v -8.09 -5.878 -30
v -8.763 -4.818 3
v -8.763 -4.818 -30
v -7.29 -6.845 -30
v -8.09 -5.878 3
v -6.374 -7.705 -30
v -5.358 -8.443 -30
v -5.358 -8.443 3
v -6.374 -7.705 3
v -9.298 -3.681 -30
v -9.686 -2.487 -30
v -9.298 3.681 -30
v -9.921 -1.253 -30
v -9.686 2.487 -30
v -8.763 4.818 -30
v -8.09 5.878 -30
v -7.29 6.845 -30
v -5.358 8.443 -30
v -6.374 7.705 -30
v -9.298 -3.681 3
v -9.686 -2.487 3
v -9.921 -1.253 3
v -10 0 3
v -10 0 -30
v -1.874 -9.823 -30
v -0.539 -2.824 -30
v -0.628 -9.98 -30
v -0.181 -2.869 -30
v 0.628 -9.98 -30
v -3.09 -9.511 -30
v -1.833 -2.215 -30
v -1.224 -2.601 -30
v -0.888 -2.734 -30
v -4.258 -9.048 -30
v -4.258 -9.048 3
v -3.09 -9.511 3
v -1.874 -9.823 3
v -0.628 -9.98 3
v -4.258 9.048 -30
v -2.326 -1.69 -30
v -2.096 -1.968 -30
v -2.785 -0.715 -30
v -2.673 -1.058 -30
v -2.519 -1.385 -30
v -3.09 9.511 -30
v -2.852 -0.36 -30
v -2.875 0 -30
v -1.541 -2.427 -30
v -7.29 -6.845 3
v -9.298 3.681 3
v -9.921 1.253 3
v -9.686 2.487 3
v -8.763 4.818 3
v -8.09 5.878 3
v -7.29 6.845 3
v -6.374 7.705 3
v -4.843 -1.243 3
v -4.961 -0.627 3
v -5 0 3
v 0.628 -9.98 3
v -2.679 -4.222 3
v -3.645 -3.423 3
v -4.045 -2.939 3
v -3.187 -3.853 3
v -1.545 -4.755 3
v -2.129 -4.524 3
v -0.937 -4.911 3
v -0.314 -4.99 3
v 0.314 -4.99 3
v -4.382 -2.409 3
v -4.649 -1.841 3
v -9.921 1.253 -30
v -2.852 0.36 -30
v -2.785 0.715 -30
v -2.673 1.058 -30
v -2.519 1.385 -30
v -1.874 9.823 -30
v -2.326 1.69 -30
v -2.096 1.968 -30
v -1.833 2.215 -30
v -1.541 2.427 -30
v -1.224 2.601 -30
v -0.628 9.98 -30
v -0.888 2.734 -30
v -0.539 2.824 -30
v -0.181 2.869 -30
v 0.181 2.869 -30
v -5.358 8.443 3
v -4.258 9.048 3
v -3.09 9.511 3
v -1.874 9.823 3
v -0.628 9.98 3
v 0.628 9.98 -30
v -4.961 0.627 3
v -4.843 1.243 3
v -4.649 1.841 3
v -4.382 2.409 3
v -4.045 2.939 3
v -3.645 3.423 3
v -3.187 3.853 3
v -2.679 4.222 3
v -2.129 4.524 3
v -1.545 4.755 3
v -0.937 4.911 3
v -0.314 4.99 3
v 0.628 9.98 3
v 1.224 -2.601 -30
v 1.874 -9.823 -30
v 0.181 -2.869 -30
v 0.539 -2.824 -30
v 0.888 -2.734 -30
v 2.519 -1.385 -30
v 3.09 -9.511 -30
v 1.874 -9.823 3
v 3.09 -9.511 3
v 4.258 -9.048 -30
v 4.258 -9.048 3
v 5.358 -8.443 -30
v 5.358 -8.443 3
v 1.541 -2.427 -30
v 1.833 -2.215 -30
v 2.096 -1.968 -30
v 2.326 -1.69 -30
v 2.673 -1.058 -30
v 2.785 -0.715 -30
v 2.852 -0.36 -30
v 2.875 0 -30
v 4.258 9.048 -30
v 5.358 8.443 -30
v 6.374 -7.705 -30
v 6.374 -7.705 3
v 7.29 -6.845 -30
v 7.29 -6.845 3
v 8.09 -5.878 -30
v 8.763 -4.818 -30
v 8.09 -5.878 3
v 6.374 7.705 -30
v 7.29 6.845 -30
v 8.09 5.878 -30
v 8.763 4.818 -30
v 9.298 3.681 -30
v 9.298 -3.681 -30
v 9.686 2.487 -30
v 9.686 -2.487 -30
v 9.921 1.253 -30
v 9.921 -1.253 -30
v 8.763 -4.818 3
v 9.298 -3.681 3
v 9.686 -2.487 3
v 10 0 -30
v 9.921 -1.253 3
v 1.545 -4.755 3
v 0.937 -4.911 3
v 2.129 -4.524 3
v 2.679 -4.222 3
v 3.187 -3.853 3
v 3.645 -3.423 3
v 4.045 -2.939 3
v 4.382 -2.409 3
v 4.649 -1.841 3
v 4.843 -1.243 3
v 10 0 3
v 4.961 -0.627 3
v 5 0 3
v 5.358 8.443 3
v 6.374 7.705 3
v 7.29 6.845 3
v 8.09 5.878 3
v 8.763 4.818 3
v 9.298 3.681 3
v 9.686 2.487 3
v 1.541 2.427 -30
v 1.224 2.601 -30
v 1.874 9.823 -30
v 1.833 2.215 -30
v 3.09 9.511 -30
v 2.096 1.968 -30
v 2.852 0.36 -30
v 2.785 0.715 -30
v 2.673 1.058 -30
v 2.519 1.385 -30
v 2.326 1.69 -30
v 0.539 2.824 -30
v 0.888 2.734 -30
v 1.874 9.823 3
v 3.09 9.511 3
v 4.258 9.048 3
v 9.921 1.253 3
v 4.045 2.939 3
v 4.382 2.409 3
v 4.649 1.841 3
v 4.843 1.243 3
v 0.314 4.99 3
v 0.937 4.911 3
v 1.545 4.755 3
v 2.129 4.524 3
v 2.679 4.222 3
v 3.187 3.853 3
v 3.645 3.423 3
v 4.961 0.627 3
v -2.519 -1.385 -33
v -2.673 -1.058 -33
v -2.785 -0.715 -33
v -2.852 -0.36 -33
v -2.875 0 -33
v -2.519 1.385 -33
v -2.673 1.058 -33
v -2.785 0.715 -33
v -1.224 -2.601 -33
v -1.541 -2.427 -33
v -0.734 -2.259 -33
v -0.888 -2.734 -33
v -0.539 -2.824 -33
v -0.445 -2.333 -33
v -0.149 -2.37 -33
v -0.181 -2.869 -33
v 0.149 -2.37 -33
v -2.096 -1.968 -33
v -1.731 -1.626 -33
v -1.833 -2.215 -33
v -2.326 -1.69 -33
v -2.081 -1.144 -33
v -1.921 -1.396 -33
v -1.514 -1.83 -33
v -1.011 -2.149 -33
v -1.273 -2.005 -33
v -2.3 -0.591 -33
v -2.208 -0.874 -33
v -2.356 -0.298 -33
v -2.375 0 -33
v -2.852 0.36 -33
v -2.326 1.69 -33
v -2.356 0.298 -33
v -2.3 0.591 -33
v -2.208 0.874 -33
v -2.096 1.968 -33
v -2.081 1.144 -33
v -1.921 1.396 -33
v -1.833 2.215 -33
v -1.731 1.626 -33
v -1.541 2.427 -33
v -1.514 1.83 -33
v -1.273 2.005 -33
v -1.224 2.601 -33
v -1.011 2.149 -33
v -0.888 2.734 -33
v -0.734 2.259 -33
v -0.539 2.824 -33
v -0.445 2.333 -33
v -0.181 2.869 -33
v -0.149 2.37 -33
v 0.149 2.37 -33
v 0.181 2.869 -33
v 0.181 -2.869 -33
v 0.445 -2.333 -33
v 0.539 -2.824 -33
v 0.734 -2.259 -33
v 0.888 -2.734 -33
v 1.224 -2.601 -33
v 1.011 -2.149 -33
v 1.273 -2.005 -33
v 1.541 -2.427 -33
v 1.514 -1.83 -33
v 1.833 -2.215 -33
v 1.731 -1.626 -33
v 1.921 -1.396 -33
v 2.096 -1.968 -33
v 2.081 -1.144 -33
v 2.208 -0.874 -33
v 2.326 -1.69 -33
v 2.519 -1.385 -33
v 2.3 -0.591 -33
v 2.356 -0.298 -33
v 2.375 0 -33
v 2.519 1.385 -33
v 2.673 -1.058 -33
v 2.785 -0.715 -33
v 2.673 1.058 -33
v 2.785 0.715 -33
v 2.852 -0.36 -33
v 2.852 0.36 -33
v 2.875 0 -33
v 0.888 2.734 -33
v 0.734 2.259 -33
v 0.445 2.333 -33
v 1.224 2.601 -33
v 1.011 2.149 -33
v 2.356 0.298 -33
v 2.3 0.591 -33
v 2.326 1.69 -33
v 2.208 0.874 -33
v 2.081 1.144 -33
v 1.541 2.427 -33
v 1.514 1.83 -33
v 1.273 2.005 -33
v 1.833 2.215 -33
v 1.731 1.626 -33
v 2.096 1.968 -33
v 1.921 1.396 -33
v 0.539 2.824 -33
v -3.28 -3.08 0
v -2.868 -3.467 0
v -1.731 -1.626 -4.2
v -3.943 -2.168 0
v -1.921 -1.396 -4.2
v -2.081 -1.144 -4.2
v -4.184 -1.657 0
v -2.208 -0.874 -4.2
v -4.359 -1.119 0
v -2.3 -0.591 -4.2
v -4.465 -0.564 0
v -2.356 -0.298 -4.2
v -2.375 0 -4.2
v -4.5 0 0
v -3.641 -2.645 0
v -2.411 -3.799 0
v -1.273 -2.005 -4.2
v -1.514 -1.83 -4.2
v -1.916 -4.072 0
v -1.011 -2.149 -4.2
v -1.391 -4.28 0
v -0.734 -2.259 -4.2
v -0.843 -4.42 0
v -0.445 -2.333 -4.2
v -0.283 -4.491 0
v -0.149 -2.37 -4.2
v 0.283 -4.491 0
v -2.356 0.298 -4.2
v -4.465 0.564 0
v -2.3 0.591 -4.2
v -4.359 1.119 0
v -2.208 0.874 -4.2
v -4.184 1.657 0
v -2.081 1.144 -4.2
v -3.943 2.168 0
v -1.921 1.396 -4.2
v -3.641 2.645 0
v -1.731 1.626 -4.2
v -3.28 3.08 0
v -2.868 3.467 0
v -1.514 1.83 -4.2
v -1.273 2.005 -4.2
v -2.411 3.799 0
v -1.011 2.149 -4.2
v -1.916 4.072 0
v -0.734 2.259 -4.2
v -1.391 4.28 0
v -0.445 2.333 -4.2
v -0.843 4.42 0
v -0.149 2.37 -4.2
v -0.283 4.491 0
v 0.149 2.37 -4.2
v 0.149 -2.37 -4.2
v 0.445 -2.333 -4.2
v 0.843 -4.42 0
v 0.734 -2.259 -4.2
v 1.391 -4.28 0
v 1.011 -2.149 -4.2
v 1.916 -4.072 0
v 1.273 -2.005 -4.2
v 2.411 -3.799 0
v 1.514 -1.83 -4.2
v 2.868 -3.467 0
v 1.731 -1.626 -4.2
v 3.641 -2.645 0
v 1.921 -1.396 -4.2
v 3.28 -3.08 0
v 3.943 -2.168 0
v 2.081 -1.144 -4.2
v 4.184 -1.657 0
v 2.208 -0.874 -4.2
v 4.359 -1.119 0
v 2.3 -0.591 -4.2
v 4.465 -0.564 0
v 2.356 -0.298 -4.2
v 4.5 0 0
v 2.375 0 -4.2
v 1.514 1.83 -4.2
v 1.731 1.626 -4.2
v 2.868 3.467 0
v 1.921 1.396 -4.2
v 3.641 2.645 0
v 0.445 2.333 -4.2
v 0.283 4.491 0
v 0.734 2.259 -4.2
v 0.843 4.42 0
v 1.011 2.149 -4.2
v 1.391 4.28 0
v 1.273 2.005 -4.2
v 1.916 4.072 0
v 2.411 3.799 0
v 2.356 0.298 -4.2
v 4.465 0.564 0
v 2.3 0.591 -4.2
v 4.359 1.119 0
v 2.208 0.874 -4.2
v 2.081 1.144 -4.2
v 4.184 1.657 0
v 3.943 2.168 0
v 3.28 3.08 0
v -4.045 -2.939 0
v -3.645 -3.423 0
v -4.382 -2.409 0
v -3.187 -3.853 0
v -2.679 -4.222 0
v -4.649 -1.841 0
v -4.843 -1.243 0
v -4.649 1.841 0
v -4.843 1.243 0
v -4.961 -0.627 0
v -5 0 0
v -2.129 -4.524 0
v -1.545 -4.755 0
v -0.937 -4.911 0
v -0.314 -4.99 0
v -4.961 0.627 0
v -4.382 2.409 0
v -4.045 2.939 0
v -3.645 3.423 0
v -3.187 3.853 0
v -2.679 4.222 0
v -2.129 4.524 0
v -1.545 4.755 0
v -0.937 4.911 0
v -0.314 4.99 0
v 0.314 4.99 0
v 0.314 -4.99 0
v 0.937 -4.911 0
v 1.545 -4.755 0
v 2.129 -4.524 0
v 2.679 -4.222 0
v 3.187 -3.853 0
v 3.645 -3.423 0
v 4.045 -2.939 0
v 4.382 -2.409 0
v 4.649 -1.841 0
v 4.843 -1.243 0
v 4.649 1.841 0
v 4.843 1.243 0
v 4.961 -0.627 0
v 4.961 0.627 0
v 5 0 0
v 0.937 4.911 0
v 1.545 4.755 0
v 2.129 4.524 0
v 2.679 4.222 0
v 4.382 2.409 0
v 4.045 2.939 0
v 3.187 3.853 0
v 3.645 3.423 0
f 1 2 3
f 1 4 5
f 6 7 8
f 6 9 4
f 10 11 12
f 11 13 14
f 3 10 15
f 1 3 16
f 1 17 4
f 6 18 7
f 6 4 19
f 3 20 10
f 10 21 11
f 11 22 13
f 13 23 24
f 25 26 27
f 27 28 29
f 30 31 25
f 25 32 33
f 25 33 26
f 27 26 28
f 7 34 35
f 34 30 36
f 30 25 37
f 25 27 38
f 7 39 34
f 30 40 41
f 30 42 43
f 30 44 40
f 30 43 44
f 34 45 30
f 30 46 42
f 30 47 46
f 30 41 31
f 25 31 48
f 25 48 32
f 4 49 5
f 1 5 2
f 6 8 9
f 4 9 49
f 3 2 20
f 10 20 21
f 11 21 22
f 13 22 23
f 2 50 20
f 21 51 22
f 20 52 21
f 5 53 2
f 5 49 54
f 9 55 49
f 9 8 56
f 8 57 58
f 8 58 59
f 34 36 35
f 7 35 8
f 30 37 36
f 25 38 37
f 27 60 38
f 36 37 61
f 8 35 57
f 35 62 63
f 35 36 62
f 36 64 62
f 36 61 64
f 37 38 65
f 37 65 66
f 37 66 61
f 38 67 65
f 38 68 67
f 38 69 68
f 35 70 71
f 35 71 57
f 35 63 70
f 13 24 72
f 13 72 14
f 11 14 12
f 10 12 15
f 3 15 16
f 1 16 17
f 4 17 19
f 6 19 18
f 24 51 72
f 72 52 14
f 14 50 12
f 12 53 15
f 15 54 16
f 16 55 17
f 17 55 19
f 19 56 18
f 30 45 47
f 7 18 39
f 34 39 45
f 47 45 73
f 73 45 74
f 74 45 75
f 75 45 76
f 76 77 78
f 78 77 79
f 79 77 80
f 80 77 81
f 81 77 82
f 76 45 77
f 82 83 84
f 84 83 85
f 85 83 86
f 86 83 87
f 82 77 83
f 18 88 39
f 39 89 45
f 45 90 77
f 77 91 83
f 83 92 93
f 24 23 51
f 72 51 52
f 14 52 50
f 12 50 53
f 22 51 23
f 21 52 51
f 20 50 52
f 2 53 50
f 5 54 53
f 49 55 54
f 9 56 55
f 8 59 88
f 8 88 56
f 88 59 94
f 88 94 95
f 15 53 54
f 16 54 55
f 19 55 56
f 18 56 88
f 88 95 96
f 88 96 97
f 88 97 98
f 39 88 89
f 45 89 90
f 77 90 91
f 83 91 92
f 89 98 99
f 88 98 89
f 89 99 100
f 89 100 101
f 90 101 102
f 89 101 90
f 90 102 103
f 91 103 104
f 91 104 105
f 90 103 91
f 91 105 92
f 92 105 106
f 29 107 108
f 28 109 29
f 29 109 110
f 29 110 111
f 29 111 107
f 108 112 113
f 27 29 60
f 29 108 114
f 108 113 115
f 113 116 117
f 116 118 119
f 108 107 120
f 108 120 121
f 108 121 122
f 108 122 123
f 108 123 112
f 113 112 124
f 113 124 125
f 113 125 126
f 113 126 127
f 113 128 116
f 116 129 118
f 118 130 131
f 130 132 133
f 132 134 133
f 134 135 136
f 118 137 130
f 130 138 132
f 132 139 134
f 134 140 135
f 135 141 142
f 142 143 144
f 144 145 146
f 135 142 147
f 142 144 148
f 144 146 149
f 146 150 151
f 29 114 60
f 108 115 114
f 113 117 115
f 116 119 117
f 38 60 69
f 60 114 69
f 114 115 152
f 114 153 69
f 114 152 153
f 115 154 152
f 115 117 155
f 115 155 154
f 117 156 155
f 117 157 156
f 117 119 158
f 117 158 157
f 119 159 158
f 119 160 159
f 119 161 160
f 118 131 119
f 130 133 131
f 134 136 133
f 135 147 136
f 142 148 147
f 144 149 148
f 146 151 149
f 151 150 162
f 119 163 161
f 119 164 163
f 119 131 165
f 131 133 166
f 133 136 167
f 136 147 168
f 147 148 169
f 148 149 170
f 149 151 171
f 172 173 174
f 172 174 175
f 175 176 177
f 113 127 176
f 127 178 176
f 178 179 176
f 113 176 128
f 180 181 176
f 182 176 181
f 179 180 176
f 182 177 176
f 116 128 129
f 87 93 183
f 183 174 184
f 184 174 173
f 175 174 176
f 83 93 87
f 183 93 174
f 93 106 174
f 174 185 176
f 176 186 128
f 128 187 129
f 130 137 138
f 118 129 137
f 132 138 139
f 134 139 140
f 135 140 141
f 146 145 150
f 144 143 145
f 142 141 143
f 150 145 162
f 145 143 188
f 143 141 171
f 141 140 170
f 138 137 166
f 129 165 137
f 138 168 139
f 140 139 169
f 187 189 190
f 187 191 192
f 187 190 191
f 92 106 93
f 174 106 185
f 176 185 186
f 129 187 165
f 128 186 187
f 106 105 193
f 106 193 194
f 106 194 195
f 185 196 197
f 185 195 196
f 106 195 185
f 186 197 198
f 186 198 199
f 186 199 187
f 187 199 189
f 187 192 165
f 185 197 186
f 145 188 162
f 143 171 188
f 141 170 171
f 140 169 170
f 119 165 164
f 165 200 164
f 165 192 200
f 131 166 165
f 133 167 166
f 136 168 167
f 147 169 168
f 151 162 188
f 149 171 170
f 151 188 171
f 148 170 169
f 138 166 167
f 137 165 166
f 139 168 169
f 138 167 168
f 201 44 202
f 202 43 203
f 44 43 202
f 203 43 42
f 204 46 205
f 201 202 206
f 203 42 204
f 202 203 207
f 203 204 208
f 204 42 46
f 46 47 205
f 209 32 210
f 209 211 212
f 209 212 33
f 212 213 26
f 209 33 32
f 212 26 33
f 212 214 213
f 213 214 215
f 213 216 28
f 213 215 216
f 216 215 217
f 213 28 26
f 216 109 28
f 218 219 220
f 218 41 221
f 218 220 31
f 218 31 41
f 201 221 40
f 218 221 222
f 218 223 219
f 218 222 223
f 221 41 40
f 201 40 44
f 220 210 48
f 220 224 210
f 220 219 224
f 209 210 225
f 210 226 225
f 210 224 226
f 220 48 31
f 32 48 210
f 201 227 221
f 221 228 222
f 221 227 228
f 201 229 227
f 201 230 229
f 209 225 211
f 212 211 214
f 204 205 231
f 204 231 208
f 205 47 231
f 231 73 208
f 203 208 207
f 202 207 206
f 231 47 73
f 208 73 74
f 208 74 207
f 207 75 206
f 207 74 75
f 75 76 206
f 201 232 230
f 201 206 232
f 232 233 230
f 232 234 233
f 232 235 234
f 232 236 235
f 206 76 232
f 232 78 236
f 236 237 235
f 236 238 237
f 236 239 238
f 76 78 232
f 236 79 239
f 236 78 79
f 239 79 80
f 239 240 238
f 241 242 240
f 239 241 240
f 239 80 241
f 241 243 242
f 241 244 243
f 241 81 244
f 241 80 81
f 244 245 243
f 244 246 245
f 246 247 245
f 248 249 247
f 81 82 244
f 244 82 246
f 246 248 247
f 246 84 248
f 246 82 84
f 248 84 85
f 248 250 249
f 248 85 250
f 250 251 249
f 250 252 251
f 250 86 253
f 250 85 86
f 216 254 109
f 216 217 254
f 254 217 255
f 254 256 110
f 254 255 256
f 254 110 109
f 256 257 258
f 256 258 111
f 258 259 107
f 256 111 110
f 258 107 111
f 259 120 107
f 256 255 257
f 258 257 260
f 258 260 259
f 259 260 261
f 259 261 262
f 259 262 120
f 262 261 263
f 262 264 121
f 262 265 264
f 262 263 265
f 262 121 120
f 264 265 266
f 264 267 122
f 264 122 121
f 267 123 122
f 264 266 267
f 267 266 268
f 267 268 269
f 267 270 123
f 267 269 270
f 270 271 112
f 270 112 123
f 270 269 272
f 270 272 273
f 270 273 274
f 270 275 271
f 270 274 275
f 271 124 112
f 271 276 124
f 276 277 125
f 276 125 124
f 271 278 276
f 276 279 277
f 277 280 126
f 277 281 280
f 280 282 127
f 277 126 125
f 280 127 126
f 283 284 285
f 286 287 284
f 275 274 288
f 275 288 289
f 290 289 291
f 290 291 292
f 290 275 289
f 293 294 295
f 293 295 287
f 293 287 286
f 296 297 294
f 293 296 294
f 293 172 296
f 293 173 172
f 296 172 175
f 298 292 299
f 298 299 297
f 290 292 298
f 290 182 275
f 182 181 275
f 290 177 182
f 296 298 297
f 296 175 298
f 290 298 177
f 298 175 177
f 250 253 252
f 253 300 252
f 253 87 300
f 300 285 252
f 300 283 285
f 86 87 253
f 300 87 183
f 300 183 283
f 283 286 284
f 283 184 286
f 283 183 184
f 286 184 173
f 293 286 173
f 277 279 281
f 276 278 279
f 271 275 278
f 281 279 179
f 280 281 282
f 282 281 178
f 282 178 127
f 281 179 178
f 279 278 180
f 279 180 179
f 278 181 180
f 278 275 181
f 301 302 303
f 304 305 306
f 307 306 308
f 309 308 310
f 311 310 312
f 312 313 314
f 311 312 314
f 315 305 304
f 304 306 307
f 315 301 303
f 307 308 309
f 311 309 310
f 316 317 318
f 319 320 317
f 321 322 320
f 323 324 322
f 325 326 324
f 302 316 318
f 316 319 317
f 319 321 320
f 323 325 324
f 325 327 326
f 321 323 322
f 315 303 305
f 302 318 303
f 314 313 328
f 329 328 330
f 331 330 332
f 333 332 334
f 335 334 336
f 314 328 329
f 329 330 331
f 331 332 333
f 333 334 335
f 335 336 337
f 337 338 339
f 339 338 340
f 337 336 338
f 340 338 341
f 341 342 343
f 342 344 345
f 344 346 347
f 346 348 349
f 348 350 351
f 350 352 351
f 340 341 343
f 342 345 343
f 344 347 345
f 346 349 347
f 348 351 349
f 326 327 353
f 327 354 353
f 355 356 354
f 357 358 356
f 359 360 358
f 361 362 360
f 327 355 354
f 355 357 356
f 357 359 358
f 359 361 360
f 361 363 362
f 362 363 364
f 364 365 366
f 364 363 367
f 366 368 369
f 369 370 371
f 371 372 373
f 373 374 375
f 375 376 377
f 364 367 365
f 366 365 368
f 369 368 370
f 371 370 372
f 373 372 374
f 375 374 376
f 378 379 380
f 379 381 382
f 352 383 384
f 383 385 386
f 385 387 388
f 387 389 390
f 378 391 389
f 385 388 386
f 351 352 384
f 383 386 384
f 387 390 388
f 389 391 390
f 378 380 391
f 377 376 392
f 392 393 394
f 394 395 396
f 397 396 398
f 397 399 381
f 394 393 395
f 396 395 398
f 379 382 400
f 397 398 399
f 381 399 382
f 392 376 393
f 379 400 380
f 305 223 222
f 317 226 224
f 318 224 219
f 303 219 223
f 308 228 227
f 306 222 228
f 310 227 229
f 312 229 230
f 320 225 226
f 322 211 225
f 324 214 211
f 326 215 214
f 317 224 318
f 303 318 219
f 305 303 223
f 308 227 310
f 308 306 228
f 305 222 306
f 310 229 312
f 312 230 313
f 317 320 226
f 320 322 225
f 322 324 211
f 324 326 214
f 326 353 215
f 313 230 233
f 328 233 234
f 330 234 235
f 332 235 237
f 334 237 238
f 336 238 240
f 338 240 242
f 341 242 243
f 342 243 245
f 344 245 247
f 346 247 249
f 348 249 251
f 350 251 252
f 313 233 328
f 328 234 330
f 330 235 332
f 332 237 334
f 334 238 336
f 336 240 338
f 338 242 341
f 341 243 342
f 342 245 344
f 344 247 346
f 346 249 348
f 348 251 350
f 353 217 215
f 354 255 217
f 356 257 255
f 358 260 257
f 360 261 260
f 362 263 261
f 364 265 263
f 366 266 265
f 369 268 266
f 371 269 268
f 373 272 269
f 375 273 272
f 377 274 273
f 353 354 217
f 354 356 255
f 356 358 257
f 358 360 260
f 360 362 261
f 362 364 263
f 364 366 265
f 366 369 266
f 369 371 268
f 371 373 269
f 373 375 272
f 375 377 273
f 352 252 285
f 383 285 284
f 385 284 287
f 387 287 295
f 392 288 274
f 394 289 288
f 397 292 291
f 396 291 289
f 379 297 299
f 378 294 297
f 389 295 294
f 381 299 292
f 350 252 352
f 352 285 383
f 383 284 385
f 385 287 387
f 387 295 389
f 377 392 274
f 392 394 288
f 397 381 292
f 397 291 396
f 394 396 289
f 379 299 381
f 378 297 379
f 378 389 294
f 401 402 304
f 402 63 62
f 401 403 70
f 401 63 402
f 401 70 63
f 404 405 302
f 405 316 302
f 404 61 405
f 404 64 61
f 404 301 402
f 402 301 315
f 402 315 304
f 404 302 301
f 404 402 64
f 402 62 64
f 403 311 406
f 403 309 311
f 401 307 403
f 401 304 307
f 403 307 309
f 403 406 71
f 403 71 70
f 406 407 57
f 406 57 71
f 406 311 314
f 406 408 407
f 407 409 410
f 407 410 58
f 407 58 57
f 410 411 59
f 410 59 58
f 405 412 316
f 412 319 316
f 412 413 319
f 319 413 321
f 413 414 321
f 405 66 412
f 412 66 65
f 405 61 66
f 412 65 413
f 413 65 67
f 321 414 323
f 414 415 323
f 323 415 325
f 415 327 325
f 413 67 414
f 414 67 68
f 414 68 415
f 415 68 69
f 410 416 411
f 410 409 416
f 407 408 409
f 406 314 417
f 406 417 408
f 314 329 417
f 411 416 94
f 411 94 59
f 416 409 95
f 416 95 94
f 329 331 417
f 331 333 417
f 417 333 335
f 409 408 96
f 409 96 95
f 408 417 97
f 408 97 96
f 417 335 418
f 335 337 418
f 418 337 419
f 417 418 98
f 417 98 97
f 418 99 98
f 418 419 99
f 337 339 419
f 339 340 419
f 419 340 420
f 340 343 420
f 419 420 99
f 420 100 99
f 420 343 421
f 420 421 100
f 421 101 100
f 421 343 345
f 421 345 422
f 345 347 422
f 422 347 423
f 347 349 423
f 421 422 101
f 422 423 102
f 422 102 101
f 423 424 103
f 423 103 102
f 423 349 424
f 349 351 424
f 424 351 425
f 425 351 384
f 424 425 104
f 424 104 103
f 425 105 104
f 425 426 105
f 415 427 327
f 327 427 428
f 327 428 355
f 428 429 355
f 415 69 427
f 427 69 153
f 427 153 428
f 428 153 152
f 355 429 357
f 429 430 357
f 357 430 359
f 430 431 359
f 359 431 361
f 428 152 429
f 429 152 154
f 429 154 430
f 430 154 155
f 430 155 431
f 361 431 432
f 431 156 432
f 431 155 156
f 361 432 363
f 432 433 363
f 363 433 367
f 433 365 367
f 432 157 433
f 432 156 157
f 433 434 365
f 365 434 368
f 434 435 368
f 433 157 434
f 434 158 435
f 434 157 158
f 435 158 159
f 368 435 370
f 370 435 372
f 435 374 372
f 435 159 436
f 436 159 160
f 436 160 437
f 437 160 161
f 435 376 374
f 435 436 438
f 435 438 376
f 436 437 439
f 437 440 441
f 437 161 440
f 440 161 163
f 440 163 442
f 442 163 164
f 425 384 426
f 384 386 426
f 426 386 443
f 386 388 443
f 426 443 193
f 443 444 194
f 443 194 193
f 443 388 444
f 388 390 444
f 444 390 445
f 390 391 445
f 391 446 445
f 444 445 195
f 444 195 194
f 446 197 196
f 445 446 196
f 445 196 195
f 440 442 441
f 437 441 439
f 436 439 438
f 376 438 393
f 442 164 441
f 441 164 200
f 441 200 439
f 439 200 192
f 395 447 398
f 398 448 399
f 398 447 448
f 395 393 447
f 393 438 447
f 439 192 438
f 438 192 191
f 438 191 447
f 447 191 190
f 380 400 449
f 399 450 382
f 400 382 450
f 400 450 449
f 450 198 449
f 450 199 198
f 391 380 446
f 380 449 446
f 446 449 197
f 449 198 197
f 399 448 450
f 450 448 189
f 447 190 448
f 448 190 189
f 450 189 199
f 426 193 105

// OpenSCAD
$fn = 50;


difference() {
	union() {
		translate(v = [0, 0, -30.0000000000]) {
			cylinder(h = 33, r = 10.0000000000);
		}
		#translate(v = [0, 0, -33.0000000000]) {
			cylinder(h = 33, r = 2.8750000000);
		}
	}
	union() {
		translate(v = [0, 0, 0]) {
			rotate(a = [0, 0, 0]) {
				difference() {
					union() {
						translate(v = [0, 0, -33.0000000000]) {
							cylinder(h = 33, r = 2.2500000000);
						}
						translate(v = [0, 0, -4.2000000000]) {
							cylinder(h = 4.2000000000, r1 = 2.3750000000, r2 = 4.5000000000);
						}
						translate(v = [0, 0, -33.0000000000]) {
							cylinder(h = 33, r = 2.3750000000);
						}
						translate(v = [0, 0, -33.0000000000]) {
							cylinder(h = 33, r = 2.2500000000);
						}
					}
					union();
				}
			}
		}
		#cylinder(h = 3, r = 5.0000000000);
	}
}
